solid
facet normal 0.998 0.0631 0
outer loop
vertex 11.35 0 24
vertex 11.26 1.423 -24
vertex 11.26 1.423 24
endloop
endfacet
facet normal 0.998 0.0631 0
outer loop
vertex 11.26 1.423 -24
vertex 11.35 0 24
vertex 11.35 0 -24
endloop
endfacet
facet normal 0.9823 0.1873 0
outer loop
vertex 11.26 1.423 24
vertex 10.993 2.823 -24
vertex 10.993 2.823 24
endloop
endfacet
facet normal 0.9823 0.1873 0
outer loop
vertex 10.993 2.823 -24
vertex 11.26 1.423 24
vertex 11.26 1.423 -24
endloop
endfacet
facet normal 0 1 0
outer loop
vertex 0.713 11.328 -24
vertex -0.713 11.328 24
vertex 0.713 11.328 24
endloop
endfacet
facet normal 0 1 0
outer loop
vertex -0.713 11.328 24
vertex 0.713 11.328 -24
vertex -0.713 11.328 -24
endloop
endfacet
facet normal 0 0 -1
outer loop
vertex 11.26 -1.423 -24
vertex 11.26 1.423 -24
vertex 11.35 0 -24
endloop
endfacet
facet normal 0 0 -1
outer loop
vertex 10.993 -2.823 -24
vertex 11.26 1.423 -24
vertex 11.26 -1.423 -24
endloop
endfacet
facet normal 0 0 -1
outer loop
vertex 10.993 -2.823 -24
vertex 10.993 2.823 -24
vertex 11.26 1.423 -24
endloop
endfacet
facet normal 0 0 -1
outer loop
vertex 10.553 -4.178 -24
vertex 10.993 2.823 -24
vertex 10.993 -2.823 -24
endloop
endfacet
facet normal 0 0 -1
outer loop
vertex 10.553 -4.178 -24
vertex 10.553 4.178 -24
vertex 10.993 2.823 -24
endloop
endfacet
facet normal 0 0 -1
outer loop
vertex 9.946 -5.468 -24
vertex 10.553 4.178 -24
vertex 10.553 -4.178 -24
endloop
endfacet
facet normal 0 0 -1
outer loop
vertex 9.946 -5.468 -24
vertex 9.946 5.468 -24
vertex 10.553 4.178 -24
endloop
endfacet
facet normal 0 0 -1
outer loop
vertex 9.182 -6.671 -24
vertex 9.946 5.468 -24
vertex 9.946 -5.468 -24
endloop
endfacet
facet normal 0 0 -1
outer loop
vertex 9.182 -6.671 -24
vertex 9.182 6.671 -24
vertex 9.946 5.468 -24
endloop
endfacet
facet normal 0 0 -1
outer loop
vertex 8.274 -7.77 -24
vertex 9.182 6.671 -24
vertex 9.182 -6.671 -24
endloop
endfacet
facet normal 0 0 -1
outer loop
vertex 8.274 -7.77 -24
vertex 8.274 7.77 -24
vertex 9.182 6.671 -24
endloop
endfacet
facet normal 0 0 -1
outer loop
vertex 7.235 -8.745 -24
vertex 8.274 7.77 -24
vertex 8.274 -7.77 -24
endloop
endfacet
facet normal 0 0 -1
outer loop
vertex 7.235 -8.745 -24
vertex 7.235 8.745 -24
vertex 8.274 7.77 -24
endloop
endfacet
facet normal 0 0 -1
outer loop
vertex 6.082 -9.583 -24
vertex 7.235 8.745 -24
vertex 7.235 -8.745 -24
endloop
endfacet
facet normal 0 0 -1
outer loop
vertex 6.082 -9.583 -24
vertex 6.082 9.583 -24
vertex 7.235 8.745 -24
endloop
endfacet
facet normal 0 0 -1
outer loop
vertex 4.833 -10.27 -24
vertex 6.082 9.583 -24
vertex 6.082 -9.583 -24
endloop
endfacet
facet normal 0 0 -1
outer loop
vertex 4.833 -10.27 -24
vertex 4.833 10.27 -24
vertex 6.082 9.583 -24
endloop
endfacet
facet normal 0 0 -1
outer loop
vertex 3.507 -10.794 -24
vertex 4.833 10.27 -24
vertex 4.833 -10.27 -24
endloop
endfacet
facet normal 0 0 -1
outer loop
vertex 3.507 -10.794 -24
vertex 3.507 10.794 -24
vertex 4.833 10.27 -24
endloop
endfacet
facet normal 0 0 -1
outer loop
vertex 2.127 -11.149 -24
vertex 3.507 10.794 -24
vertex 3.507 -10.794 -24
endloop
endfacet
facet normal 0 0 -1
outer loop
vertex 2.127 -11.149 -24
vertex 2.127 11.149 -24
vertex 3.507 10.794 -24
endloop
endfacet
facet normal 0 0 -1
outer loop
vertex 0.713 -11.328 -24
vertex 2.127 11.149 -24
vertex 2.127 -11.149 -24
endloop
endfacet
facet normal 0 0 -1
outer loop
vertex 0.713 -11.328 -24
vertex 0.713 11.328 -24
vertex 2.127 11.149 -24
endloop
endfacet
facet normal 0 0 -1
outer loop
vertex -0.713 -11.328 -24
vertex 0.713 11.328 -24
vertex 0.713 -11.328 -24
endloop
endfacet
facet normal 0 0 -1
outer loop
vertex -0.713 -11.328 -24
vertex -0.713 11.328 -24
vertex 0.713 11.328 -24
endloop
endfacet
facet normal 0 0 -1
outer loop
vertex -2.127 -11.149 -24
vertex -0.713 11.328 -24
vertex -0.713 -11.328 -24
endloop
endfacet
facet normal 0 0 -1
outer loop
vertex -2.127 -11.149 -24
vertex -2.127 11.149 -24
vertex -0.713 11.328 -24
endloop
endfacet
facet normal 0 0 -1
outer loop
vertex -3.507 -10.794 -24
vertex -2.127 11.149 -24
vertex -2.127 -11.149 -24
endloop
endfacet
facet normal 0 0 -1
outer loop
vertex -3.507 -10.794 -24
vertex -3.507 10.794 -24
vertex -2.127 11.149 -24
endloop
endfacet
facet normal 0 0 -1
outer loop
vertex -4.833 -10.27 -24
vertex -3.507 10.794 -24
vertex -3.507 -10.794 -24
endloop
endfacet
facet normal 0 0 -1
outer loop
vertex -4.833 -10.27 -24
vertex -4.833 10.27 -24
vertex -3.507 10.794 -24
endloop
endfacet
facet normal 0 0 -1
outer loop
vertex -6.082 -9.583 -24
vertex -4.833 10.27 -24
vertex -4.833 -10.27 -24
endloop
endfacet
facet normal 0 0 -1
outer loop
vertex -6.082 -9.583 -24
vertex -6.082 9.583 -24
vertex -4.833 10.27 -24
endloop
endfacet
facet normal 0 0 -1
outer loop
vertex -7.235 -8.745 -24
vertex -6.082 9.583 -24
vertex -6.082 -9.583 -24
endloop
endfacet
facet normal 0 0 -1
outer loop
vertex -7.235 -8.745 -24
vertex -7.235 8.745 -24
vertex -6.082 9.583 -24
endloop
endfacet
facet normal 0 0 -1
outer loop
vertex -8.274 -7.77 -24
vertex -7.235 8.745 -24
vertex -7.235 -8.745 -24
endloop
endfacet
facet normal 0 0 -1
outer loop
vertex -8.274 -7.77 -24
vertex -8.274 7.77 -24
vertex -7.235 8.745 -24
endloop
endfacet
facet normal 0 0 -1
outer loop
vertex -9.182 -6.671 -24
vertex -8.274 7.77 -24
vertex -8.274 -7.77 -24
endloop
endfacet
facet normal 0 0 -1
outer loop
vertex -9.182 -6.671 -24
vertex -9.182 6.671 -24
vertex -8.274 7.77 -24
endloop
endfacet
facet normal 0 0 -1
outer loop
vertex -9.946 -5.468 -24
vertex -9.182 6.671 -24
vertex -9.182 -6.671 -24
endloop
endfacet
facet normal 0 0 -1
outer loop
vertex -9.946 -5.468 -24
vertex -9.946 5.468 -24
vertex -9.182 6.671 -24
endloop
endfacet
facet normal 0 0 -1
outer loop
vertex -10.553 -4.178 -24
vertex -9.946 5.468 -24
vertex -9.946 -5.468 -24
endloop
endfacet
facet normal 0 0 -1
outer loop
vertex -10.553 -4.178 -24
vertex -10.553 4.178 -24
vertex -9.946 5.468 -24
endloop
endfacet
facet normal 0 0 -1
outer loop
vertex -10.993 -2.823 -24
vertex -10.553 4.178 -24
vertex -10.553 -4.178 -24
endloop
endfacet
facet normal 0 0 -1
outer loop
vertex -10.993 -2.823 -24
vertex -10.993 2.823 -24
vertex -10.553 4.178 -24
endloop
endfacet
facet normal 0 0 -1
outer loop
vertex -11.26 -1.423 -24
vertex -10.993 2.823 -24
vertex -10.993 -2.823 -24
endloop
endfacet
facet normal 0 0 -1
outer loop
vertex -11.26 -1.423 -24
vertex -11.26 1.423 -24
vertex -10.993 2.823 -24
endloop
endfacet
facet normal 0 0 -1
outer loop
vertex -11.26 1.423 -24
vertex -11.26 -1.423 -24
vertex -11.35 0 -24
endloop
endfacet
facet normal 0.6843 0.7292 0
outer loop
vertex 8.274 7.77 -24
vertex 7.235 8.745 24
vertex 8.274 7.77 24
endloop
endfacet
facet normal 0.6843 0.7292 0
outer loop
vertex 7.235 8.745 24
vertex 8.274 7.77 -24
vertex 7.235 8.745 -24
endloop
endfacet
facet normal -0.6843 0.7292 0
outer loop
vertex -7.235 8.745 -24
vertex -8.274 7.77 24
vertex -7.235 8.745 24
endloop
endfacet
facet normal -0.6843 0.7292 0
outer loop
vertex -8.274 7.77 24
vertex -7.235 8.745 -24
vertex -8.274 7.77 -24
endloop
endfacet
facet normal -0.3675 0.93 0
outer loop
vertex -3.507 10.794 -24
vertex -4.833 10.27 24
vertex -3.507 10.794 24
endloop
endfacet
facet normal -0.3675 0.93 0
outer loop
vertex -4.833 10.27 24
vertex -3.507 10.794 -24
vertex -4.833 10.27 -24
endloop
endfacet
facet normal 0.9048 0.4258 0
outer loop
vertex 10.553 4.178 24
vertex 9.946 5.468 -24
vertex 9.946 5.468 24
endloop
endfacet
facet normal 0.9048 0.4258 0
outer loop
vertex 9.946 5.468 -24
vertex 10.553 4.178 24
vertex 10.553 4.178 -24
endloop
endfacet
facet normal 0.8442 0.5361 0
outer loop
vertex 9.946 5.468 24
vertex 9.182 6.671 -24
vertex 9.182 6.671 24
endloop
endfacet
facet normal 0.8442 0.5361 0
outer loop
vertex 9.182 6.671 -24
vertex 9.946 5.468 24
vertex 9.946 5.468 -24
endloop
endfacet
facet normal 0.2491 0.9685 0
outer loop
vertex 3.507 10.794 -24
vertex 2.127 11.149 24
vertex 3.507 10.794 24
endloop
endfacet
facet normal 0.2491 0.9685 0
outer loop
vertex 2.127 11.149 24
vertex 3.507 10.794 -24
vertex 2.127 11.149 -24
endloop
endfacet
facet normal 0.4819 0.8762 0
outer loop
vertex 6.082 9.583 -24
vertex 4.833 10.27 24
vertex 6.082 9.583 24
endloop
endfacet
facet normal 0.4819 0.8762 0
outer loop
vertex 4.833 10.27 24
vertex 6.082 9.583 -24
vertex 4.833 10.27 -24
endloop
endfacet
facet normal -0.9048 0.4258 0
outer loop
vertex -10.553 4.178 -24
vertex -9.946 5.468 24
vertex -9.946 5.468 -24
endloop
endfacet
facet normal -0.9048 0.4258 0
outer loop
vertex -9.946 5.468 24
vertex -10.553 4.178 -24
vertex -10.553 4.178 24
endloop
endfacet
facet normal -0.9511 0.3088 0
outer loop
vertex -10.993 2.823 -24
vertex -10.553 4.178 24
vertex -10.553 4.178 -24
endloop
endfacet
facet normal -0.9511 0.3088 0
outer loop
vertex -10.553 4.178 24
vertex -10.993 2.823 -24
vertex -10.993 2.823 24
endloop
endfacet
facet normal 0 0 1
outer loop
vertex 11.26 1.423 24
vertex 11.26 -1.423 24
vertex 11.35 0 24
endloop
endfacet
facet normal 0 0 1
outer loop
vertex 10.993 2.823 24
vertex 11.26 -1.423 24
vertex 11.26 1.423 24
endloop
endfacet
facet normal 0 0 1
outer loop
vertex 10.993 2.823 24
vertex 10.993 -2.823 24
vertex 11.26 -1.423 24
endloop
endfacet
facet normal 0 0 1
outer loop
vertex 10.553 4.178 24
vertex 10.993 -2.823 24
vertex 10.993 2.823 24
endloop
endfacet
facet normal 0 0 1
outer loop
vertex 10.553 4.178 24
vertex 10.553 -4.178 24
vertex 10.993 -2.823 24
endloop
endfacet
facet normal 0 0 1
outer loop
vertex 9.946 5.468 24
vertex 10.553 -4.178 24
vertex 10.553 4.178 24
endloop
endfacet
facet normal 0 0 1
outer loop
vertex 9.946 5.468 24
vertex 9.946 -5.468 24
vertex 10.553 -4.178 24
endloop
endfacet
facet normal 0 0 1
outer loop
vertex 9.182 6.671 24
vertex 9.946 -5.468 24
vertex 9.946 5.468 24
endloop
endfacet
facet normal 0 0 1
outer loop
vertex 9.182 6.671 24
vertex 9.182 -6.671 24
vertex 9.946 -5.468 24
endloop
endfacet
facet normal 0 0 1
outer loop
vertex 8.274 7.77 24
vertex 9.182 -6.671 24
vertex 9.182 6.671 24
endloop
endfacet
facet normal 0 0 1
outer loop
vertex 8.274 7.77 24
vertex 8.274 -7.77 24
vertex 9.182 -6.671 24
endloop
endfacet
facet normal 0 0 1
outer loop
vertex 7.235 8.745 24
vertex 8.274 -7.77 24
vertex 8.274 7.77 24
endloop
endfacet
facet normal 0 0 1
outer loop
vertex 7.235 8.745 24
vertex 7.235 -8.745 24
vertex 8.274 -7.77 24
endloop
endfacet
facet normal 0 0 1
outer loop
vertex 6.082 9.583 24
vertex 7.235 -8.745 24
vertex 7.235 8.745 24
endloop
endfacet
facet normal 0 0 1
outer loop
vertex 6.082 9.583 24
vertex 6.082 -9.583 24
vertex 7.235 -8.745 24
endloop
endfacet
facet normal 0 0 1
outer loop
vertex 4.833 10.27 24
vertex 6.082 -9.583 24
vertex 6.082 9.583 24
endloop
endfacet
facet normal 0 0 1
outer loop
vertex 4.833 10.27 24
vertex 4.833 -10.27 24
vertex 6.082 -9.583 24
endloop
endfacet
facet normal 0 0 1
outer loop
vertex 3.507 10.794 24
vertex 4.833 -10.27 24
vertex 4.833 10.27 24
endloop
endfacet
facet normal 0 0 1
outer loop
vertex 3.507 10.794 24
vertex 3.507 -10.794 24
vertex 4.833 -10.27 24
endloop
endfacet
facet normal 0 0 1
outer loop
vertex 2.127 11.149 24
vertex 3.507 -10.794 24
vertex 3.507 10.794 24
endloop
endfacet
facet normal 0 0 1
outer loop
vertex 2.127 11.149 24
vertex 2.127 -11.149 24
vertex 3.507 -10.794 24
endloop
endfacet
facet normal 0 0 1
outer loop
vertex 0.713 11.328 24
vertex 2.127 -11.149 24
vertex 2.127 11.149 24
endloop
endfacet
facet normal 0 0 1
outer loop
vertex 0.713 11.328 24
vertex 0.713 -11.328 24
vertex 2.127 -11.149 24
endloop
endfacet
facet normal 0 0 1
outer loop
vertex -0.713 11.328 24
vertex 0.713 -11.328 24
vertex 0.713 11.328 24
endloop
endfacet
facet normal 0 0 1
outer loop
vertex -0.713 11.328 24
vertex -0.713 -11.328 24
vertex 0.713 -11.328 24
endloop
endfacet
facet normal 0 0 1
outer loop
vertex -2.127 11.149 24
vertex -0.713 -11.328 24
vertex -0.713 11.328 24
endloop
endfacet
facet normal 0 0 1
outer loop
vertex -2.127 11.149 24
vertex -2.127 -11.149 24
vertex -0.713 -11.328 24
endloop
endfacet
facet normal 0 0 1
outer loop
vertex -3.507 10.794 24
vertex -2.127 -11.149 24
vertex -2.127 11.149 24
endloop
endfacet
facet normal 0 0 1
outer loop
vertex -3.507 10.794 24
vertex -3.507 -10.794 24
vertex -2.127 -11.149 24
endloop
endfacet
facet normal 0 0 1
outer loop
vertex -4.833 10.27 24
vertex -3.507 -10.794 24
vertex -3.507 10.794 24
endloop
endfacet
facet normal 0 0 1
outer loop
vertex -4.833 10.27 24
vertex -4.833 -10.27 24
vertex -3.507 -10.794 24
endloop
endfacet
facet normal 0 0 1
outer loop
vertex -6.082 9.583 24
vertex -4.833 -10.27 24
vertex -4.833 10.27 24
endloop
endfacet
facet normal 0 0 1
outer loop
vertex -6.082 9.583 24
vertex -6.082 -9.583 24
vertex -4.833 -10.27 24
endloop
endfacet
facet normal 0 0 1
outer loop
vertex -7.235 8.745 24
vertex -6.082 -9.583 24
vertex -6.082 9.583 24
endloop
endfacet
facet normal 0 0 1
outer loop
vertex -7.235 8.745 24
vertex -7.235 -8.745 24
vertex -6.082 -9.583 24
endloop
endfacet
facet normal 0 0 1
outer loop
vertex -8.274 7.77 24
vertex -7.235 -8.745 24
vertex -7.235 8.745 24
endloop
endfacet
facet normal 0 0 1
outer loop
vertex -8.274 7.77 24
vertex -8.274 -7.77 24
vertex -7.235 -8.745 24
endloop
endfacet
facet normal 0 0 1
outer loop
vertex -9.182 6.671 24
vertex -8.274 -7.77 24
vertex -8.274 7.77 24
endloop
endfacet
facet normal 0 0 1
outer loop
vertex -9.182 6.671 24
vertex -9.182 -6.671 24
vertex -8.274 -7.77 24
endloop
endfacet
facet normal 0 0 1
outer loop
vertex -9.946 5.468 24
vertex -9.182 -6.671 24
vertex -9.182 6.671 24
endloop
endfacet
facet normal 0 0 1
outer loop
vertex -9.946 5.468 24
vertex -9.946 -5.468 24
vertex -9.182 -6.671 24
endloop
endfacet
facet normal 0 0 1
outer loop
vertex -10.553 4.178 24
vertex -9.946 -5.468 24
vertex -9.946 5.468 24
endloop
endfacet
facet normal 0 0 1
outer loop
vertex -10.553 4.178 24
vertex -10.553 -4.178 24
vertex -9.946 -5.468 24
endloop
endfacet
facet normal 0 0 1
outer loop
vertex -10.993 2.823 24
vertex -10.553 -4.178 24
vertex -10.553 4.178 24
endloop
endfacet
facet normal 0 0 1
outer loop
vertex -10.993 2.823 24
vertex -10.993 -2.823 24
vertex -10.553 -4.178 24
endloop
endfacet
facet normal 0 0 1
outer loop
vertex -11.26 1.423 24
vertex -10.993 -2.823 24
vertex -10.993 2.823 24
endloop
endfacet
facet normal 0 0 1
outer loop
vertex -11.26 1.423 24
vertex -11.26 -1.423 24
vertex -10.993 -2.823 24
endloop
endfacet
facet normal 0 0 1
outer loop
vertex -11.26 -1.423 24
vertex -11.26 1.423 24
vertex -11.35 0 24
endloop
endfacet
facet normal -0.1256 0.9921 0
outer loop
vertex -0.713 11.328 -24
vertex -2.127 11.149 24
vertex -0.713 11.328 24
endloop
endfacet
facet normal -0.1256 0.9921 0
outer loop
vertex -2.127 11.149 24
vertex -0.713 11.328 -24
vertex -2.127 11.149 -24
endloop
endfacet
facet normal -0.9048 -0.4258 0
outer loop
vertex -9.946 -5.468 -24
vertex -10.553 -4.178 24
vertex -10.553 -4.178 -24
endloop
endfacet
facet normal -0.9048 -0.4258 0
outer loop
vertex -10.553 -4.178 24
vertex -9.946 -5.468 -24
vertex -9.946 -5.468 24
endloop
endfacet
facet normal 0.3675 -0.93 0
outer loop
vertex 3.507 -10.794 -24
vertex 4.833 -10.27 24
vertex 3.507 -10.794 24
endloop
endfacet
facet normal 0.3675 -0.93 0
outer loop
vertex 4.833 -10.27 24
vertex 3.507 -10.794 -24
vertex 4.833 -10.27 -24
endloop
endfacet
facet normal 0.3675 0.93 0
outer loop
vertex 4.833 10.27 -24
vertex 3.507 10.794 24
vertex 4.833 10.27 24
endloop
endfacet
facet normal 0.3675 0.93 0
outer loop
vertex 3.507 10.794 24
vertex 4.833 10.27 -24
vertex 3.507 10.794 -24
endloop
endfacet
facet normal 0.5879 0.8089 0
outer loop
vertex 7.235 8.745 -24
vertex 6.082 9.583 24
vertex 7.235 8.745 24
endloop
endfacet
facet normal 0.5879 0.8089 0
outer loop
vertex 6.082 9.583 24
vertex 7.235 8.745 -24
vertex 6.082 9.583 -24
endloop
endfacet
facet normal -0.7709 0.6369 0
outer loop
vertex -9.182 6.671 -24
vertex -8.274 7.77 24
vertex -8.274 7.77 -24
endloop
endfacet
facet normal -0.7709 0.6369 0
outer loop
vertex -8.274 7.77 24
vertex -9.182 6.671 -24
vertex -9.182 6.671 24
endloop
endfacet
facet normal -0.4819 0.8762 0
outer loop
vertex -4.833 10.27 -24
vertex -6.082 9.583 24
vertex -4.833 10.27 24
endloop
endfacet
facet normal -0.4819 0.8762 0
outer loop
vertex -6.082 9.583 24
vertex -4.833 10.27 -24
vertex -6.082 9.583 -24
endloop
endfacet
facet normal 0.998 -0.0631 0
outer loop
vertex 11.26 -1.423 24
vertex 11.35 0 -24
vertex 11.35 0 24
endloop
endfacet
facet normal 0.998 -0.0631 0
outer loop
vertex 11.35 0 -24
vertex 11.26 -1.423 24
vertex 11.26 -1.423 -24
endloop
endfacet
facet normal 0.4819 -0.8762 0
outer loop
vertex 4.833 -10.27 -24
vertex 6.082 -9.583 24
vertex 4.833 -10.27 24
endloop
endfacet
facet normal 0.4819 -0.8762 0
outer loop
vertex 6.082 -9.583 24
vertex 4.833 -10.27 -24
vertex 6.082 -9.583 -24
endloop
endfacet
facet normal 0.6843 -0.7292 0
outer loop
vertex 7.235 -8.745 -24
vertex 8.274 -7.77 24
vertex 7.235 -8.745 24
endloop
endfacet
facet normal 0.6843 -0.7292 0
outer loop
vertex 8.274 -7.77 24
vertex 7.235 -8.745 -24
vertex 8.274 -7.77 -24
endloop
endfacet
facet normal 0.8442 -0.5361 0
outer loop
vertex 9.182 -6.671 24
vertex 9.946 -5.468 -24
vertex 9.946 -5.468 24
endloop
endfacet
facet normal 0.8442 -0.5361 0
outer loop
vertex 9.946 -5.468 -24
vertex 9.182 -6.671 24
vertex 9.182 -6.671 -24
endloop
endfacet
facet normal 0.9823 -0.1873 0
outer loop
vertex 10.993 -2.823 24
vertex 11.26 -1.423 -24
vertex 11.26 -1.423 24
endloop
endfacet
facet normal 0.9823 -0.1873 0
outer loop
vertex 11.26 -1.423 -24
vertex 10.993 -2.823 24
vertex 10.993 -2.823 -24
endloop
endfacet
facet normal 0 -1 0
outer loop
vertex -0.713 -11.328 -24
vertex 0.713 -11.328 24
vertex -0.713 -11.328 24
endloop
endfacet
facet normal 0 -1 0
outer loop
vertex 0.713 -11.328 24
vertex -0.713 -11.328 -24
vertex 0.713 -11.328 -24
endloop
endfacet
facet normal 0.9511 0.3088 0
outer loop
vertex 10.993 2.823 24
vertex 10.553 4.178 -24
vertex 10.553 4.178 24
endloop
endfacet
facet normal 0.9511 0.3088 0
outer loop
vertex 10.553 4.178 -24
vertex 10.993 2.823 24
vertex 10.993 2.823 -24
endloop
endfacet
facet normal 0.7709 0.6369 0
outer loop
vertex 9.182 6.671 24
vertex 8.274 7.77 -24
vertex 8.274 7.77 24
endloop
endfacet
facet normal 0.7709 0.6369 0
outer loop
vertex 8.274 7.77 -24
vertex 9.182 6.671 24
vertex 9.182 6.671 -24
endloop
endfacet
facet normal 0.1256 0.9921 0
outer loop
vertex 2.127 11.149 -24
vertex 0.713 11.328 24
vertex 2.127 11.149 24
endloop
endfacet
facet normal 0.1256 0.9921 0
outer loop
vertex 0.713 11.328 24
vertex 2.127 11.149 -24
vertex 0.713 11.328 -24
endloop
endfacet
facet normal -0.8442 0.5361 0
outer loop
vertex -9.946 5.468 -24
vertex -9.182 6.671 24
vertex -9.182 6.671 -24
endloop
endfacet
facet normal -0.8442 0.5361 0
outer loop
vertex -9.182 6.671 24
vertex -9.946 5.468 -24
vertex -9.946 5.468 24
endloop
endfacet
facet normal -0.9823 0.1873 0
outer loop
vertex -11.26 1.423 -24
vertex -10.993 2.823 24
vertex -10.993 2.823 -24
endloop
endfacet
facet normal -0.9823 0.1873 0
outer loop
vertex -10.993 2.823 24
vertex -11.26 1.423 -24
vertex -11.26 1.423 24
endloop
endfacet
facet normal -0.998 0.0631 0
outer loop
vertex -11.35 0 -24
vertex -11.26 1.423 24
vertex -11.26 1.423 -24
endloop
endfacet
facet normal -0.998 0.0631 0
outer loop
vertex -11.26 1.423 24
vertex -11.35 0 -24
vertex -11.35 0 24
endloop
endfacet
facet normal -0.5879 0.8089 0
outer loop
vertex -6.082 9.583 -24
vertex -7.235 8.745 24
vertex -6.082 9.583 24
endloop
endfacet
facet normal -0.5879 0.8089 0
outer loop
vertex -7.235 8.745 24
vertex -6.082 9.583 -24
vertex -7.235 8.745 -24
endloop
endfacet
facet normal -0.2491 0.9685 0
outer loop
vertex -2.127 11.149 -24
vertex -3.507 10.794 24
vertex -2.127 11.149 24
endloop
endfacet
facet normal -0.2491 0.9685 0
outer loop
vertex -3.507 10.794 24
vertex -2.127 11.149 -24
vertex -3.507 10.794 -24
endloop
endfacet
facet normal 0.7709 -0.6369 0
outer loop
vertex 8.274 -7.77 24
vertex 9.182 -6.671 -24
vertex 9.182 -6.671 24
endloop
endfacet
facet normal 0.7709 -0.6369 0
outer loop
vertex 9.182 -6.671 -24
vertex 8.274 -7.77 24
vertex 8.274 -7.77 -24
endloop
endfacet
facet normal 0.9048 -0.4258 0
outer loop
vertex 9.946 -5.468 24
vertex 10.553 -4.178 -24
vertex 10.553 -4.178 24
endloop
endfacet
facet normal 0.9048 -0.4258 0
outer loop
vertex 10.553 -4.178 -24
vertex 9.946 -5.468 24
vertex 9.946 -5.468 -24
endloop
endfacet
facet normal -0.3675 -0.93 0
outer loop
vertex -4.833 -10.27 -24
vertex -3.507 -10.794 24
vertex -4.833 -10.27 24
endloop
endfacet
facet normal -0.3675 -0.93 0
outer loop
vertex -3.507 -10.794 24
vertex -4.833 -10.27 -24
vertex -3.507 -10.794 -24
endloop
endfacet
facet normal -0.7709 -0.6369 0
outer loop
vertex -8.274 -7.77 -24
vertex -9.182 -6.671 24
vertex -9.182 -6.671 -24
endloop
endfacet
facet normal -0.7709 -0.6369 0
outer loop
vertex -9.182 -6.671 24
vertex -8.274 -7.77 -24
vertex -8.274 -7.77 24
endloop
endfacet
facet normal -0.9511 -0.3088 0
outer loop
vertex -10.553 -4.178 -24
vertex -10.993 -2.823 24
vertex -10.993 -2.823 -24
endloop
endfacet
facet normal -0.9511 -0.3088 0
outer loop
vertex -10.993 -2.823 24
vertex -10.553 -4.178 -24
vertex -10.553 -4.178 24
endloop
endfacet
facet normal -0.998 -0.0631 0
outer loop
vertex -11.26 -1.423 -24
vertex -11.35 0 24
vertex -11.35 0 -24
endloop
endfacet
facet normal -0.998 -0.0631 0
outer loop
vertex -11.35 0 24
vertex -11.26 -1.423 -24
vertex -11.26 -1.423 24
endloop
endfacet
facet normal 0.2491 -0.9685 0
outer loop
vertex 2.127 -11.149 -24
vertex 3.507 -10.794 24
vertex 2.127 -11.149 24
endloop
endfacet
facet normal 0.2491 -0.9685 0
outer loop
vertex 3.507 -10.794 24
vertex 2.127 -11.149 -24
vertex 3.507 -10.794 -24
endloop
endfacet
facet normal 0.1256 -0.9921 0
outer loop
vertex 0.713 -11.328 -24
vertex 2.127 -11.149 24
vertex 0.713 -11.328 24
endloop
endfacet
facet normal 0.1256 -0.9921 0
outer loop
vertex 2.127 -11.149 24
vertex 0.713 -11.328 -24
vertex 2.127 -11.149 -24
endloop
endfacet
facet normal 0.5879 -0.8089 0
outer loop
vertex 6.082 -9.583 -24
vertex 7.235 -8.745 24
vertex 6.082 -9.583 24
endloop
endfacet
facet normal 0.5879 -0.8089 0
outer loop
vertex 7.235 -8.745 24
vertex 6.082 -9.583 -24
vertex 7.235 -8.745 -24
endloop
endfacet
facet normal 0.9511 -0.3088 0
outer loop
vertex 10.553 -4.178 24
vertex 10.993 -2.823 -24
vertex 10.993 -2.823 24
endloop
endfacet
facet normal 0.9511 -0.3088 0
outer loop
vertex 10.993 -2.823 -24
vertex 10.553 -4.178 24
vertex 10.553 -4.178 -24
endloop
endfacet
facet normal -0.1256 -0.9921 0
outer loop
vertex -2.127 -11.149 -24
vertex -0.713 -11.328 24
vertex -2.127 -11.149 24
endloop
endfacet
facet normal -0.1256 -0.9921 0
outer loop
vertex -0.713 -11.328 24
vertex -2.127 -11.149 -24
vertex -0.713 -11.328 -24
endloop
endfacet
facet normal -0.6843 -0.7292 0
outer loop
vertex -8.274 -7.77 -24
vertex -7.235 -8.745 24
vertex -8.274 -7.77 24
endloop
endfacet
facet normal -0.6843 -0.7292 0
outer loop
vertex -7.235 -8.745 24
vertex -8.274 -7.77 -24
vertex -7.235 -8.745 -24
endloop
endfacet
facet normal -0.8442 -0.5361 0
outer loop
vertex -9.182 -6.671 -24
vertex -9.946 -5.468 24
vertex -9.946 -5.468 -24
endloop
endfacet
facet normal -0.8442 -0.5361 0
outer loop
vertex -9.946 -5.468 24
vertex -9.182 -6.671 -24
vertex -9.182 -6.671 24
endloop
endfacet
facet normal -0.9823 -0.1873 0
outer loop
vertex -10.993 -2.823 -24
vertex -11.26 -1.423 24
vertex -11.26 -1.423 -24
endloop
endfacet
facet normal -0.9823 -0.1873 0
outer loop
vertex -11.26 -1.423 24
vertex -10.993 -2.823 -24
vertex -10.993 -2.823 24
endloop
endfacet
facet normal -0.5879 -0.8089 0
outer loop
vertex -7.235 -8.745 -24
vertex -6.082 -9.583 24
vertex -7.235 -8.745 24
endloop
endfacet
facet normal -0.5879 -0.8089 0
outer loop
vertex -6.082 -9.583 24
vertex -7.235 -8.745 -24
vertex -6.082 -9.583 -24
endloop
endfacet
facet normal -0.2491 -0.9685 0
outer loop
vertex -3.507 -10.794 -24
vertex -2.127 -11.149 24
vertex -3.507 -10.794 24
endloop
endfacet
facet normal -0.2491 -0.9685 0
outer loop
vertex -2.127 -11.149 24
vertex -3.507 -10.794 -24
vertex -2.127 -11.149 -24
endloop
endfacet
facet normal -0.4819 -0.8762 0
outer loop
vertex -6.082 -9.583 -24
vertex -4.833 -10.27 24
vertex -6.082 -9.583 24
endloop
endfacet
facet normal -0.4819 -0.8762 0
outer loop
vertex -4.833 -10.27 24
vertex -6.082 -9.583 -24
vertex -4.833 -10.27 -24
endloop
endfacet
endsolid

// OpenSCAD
$fn = 50;


difference() {
	union() {
		translate(v = [0, 0, -24.0000000000]) {
			cylinder(h = 48, r = 11.3500000000);
		}
	}
	union() {
		translate(v = [0, 0, -100.0000000000]) {
			cylinder(h = 200, r = 0);
		}
	}
}
